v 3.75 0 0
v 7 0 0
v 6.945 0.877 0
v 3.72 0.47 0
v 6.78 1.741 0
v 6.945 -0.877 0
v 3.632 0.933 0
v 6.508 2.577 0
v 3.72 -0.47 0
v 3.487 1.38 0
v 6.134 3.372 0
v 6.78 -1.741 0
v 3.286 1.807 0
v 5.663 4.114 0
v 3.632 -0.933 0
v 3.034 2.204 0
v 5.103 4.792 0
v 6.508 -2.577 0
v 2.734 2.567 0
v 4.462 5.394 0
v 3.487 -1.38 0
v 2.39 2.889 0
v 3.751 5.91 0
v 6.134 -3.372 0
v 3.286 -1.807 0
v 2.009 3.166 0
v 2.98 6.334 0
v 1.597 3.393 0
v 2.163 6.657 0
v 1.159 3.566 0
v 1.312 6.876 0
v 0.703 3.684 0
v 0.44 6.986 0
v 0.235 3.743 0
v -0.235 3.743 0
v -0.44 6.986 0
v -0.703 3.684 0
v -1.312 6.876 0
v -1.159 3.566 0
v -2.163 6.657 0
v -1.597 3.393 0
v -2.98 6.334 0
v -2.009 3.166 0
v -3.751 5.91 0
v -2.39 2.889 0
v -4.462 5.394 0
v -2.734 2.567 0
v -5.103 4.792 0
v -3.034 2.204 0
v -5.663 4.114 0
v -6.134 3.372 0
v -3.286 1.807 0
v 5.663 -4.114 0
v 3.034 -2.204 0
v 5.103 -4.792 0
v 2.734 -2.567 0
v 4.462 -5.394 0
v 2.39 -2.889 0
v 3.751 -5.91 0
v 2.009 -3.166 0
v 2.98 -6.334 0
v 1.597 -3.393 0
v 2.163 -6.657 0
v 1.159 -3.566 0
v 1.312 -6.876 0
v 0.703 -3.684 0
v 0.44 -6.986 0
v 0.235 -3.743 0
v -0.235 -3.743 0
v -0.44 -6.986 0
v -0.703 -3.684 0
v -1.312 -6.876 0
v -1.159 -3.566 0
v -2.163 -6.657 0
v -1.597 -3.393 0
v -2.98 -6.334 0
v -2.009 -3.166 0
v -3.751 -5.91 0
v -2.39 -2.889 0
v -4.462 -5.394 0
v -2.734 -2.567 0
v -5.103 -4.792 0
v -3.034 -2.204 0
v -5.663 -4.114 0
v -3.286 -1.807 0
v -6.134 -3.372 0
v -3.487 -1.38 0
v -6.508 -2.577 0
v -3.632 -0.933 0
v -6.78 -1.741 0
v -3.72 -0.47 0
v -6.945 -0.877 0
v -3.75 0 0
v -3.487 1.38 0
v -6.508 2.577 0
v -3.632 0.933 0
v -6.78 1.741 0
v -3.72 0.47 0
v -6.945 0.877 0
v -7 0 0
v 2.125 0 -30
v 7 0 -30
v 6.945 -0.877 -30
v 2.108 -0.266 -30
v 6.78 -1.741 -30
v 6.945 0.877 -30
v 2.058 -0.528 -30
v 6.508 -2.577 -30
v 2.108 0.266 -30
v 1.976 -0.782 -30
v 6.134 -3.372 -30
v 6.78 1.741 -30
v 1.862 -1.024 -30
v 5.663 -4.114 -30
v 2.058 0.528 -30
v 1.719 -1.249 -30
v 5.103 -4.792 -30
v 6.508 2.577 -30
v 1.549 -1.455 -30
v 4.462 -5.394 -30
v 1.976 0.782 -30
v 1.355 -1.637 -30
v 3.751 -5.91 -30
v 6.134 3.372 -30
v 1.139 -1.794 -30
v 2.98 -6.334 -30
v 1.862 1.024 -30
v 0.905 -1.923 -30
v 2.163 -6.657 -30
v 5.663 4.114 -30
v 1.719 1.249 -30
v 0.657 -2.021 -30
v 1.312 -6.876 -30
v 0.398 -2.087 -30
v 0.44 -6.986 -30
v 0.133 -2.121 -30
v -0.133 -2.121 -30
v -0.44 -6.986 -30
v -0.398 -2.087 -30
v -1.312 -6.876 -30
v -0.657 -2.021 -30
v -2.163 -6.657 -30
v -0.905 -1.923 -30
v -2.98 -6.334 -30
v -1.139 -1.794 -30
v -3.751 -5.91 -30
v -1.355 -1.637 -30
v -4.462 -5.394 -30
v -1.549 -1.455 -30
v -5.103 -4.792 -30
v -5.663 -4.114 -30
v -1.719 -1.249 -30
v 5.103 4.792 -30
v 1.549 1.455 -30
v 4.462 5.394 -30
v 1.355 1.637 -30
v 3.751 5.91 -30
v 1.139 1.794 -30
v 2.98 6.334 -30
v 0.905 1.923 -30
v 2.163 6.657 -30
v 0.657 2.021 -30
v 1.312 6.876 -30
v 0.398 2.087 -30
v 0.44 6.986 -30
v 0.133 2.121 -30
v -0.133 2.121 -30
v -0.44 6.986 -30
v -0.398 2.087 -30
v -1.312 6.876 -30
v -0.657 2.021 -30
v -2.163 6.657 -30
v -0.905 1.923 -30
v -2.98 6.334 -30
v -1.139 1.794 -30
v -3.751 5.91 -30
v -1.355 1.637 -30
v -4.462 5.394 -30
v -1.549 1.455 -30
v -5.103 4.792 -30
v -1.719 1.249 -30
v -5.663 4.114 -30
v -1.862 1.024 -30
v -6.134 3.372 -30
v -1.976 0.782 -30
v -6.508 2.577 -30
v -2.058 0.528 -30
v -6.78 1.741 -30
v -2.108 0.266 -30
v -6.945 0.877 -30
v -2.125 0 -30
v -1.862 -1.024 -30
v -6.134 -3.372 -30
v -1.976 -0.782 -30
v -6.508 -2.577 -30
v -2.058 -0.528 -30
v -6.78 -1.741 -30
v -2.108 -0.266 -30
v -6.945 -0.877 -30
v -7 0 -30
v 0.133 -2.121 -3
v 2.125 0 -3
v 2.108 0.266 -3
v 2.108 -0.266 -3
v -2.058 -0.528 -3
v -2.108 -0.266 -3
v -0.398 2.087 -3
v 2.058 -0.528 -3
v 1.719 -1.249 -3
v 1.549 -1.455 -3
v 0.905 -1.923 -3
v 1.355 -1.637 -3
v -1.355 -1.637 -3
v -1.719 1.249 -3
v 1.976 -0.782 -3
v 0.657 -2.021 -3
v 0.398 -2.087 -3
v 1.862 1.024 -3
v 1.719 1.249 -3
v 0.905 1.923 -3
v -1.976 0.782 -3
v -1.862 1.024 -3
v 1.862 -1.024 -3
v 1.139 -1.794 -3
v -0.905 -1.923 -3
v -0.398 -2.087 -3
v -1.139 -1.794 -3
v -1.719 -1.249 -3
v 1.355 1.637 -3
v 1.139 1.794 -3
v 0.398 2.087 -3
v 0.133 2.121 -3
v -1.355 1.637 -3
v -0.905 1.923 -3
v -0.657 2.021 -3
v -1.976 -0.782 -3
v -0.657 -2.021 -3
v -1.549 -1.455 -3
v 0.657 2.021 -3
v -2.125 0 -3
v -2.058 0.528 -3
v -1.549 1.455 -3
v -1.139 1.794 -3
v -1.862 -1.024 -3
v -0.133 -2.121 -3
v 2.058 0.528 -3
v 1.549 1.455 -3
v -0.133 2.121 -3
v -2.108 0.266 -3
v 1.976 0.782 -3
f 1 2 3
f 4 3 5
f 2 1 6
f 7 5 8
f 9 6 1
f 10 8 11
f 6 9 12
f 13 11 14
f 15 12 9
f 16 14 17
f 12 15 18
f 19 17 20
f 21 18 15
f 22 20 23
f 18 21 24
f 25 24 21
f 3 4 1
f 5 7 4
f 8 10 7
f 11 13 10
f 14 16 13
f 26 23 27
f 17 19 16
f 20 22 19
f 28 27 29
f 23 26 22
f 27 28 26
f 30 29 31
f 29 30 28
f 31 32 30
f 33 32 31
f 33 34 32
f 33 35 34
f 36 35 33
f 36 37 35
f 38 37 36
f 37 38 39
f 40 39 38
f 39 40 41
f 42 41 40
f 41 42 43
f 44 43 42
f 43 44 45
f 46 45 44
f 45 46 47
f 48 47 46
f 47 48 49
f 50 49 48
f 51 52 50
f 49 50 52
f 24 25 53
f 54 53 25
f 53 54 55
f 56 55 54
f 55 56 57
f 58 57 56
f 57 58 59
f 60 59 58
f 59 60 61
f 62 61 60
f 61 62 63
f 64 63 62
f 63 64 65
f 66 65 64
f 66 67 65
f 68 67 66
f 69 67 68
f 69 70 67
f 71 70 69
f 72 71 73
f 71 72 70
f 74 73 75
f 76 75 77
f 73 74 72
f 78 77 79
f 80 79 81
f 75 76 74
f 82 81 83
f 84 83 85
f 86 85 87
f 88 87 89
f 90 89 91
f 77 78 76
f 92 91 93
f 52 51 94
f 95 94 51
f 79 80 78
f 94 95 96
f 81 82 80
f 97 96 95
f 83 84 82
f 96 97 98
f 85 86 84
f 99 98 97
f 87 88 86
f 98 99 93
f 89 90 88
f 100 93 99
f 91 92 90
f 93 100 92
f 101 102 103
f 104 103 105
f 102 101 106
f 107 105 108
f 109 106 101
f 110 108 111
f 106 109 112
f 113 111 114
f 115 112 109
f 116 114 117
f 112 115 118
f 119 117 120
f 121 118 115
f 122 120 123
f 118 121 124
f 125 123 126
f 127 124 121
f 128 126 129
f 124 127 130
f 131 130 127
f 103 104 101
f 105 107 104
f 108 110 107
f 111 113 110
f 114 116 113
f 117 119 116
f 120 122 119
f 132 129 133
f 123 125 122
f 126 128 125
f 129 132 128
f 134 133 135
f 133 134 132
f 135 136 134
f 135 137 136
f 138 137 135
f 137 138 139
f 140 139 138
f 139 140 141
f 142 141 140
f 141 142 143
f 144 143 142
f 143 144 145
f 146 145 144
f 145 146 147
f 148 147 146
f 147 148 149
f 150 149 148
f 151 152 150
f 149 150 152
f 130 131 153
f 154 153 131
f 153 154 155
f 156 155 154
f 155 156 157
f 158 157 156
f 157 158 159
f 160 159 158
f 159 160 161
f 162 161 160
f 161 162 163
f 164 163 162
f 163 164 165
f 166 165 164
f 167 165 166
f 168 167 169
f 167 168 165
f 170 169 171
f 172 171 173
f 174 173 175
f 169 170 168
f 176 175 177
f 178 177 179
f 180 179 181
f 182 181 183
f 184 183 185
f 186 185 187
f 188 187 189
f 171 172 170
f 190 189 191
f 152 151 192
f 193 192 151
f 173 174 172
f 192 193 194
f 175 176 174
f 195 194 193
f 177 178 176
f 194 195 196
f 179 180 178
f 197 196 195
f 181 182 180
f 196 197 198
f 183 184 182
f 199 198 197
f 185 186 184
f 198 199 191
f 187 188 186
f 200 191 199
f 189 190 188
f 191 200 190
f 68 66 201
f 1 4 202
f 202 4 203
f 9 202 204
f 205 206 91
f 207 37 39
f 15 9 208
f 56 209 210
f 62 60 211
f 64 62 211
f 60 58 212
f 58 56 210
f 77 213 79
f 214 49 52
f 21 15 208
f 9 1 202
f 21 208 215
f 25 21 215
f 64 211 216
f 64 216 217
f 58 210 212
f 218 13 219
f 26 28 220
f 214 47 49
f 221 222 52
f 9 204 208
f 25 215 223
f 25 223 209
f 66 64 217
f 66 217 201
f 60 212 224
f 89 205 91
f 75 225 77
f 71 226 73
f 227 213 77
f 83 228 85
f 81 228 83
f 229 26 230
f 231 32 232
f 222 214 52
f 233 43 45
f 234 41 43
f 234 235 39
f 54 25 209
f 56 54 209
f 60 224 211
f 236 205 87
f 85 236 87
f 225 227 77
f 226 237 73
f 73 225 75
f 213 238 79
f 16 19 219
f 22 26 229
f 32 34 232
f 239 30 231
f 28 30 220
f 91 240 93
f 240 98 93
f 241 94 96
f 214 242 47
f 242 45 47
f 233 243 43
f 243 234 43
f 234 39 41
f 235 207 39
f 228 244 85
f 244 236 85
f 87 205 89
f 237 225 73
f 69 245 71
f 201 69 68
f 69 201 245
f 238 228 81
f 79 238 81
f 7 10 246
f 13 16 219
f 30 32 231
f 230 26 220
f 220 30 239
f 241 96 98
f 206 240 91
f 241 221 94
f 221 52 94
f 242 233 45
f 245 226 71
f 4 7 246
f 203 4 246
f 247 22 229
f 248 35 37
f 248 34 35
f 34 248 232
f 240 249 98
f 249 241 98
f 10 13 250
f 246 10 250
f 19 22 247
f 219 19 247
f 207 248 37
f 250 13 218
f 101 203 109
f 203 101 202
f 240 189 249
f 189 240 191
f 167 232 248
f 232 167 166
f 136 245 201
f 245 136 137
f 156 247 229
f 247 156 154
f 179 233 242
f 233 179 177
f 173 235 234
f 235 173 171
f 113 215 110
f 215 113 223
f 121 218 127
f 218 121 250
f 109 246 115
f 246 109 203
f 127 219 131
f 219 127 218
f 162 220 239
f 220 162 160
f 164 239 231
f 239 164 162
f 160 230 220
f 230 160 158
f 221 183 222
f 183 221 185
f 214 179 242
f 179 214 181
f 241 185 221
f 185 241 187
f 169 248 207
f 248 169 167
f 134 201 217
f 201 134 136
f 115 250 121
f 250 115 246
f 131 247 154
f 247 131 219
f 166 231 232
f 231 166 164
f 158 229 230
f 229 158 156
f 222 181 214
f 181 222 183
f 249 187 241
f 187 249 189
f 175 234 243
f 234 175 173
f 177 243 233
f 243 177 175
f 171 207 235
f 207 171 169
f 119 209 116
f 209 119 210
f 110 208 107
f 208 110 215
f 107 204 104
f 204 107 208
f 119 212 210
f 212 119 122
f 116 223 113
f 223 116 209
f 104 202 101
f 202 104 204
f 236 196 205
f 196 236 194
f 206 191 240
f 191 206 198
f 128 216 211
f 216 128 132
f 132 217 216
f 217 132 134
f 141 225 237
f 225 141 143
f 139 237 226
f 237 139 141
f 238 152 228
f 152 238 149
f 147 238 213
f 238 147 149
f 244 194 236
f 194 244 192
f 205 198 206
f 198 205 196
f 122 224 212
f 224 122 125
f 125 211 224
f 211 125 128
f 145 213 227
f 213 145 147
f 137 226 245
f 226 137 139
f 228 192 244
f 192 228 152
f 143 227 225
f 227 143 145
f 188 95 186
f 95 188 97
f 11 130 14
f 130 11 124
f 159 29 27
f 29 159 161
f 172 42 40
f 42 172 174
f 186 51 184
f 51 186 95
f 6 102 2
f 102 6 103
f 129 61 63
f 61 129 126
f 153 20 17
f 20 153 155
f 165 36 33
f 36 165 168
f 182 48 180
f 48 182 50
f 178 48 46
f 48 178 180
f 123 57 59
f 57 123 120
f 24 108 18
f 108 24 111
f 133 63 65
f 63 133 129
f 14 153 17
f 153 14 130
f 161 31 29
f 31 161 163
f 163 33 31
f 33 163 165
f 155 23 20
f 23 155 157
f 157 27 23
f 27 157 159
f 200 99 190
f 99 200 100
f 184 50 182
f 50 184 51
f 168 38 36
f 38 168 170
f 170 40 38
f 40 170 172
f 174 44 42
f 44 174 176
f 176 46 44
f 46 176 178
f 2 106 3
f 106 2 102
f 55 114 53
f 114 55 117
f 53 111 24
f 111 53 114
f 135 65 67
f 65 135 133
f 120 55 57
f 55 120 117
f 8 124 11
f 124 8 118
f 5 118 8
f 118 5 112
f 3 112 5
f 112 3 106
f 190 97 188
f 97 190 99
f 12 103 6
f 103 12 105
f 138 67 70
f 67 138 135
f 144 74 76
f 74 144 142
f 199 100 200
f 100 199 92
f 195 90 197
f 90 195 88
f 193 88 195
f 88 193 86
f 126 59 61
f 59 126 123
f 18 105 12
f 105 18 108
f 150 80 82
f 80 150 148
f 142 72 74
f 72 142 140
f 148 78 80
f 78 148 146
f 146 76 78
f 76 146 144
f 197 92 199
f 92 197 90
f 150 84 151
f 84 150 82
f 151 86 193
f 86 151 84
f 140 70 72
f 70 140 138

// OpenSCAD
$fn = 50;


difference() {
	union() {
		translate(v = [0, 0, -30.0000000000]) {
			cylinder(h = 30, r = 7.0000000000);
		}
		cylinder(h = 0, r = 17.0000000000);
	}
	union() {
		translate(v = [0, 0, 0]) {
			rotate(a = [0, 0, 0]) {
				difference() {
					union() {
						#translate(v = [0, 0, -30.0000000000]) {
							cylinder(h = 30, r = 2.0000000000);
						}
						#translate(v = [0, 0, -3]) {
							cylinder(h = 3, r1 = 2.1250000000, r2 = 3.7500000000);
						}
						#translate(v = [0, 0, -30.0000000000]) {
							cylinder(h = 30, r = 2.1250000000);
						}
						#translate(v = [0, 0, -30.0000000000]) {
							cylinder(h = 30, r = 2.0000000000);
						}
					}
					union();
				}
			}
		}
	}
}
